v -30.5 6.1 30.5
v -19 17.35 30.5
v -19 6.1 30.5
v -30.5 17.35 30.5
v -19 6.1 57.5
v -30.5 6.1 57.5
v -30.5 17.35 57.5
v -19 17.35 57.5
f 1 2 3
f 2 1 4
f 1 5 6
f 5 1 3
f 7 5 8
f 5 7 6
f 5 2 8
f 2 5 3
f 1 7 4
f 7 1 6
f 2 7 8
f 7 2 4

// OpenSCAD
// file: D:/Projects/assembly-workshop/outputs/Screen_Pi_Hue_SCR5-H8_2026-10-31/checks/geometry.scad
// SCR5-G; mm; FRONT view: X right, Z up, Y into rack. Glass/plate front Y=0.
// Measured values: work/screen-5in/Dimensions.md. Physical fit/strength UNKNOWN.
part="plate";
DROP=0.45; // coupon winner can be substituted here; all three pins use this DROP
LIP=0.8; LIP_ON=true;
LIP_EDGES=[true,true,false,false]; // left,right,bottom,top; Brian: side lips only, cosmetic
FRAME_STEP=1.5; // measured glass-edge inset to metal LCD frame, left/right only
SHIM=0; // moves rear frame seat and plate-boss mating face back
$fn=48;
GCX=33; GCZ=41.5; PW=252; PH=88.8; PT=4;
GW=120.7; GH=77.2; CLEAR=0.2; WW=GW+2*CLEAR; WH=GH+2*CLEAR;
SEAT=13.3+SHIM; FT=3;
SO=[56.45,34]; BTN_X=[45.5,35.5,25.5];
PCB_TOP=38; GAP=0.10; LEAF_T=0.8;
HOLE=[3.4,40.3,44.7];
BX=[GCX-68,GCX+68]; BZ=[10,72];
// DSI connector X extent is unmeasured: conservative assumed 8 mm inward from PCB edge.
DSI=[GCX-60.5,9.1,GCZ-38+30,8,5.25,21];
module xz(y,d){translate([0,y+d,0])rotate([90,0,0])linear_extrude(d)children();}
// rr/rack_slots copied from SCR5-F; same exact slot centres, outline shifted -0.05 Z to centre 44.4.
module rr(w,h,r){hull()for(x=[-w/2+r,w/2-r],z=[-h/2+r,h/2-r])translate([x,z])circle(r=r);}
module rack_slots(){for(x=[-118.2625,118.2625],z=[6.323,38.127,50.773,82.577])translate([x,z])hull()for(dx=[-1.5,1.5])translate([dx,0])circle(d=7);}
module cyl_y(x,y,z,d,h){translate([x,y,z])rotate([-90,0,0])cylinder(d=d,h=h);}
module window_cut(){
  xz(-0.02,4.04)translate([GCX,GCZ])square([WW,WH],center=true);
  // 0.3 x 45-degree chamfer, square corners, front only.
  translate([GCX,0.3,GCZ])rotate([90,0,0])
    linear_extrude(height=0.3,scale=[(WW+0.6)/WW,(WH+0.6)/WH])square([WW,WH],center=true);
}
module lips(){
  // Cosmetic side ledges only; rear frame/standoffs set depth and retain the screen.
  if(LIP_ON)for(i=[0:3])if(LIP_EDGES[i]){
    if(i<2)translate([GCX+(i==0?-WW/2:WW/2-LIP),2.5,GCZ-GH/2+4])cube([LIP,0.8,GH-8]);
    else translate([GCX-GW/2+4,2.5,GCZ+(i==2?-WH/2:WH/2-LIP)])cube([GW-8,0.8,LIP]);
  }
}
// Leaf/nub/bump geometry copied from SCR5-WP-A, translated to this glass centre.
module leaves(){for(x=BTN_X)translate([GCX+x-1.5,0,GCZ]){
  translate([0,0,PCB_TOP+GAP+0.9+0.1])cube([3,11.8,LEAF_T]);
  translate([0,10.2,PCB_TOP+GAP])cube([3,1.4,1.0+LEAF_T/2]);
  translate([0,10.4,PCB_TOP+GAP+1.0+LEAF_T])cube([3,1.0,0.9]);
}}
module plate(){difference(){union(){
  difference(){xz(0,PT)translate([0,PH/2])rr(PW,PH,2.5);window_cut();}
  for(x=BX,z=BZ)cyl_y(x,3.9,z,8,SEAT-3.9);
  leaves(); lips();
 }
 xz(-0.02,4.04)rack_slots();
 for(x=BTN_X)translate([GCX+x-HOLE[0]/2,-0.02,GCZ+HOLE[1]])cube([HOLE[0],SEAT+FT+0.04,HOLE[2]-HOLE[1]]);
 // Printed-in screw pilots (no heat-set OD assumption): nominal M2.5, fit UNKNOWN.
 for(x=BX,z=BZ)cyl_y(x,SEAT-6,z,2.1,6.02);
 // Rear engraving, 0.5 deep, left field.
 xz(3.5,0.52)translate([-75,40])mirror([1,0])text("SCR5-G",size=6,halign="center",font="Liberation Sans:style=Bold");
}}
module frame_blank(){
  // C-shaped perimeter; no material across the board centre / touch FPC.
  xz(SEAT,FT)translate([GCX,GCZ])difference(){square([132,76],center=true);square([116,60],center=true);}
  for(sx=[-1,1],sz=[-1,1])cyl_y(GCX+sx*SO[0],SEAT,GCZ+sz*SO[1],9,FT);
  for(x=BX,z=BZ)hull(){cyl_y(x,SEAT,z,8,FT);cyl_y(GCX+(x<GCX?-62:62),SEAT,z,8,FT);}
}
module dsi_keepout(){translate([DSI[0]-3,DSI[1]-3,DSI[2]-3])cube([DSI[3]+6,DSI[4]+6,DSI[5]+6]);}
module ribbon_route(){
  // Open left/up corridor 18 mm wide; extends past top of plate.
  translate([GCX-84,6.1,GCZ-11])cube([18,24,65]);
  translate([GCX-84,6.1,GCZ-11])cube([32,24,27]);
}
module frame(){difference(){frame_blank();dsi_keepout();ribbon_route();
 for(sx=[-1,1],sz=[-1,1])cyl_y(GCX+sx*SO[0],SEAT-0.02,GCZ+sz*SO[1],2.8,FT+0.04);
 for(x=BX,z=BZ)cyl_y(x,SEAT-0.02,z,2.8,FT+0.04);
}}
// Pin polygon/cap/notch/dot design copied unchanged from SCR5-WP-A.
module pin(d,dots){s=2*d+0.5;difference(){union(){
 translate([-1.5,0,0])rotate([90,0,90])linear_extrude(3)polygon([
 [-s-0.02,40.5],[10.2,40.5],[10.2,41.0],[11.5,41.0],[11.5+2*d,41.0-d],[15,41.0-d],[15,44.5],[-s-0.02,44.5]]);
 translate([-2.5,-s-1.5,39.6])cube([5,1.5,5.8]);
 }for(i=[0:dots-1])translate([(i-(dots-1)/2)*1.4,-s-1.5-0.01,43.5])rotate([-90,0,0])cylinder(d=0.9,h=0.4);}}
module placed_pin(i){translate([GCX+BTN_X[i],0,GCZ])pin(DROP,i+1);}
// Measured layers: cover glass 0.9 + second glass 1.6, metal frame 3.0,
// open gap 2.0, PCB 1.6. Metal frame inset ~1.5 at LEFT/RIGHT only.
// PCB centred under glass and full metal-frame top/bottom extent remain UNKNOWN.
module glass(){translate([GCX-GW/2,0,GCZ-GH/2])cube([GW,2.5,GH]);}
module lcd(){
  translate([GCX-GW/2+FRAME_STEP,2.5,GCZ-GH/2])cube([GW-2*FRAME_STEP,3.0,GH]);
}
module pcb(){translate([GCX-60.5,7.5,GCZ-38])cube([121,1.6,76]);}
module standoffs(){for(sx=[-1,1],sz=[-1,1])difference(){cyl_y(GCX+sx*SO[0],9.1,GCZ+sz*SO[1],5.5,4.2);cyl_y(GCX+sx*SO[0],9.08,GCZ+sz*SO[1],2.5,4.24);}}
module buttons(){for(x=BTN_X){
 translate([GCX+x-3.5,9.1,GCZ+38-3.4])cube([7,3.6,2.4]);
 translate([GCX+x-1.5,9.1,GCZ+37])cube([3,3.6,1]);
}}
module dsi(){translate([DSI[0],DSI[1],DSI[2]])cube([DSI[3],DSI[4],DSI[5]]);}
module touch(){translate([GCX-10,9.1,GCZ-5])cube([20,2,10]);} // lateral extent unmeasured
module dummy(){glass();lcd();pcb();standoffs();buttons();dsi();touch();}
module assembly(){color("gray")plate();color("orange")frame();for(i=[0:2])color("cyan")placed_pin(i);color([0.2,0.3,0.4,0.4])dummy();}
// main file
include <D:/Projects/assembly-workshop/outputs/Screen_Pi_Hue_SCR5-H8_2026-10-31/checks/geometry.scad>
intersection(){dsi_keepout();ribbon_route();}
